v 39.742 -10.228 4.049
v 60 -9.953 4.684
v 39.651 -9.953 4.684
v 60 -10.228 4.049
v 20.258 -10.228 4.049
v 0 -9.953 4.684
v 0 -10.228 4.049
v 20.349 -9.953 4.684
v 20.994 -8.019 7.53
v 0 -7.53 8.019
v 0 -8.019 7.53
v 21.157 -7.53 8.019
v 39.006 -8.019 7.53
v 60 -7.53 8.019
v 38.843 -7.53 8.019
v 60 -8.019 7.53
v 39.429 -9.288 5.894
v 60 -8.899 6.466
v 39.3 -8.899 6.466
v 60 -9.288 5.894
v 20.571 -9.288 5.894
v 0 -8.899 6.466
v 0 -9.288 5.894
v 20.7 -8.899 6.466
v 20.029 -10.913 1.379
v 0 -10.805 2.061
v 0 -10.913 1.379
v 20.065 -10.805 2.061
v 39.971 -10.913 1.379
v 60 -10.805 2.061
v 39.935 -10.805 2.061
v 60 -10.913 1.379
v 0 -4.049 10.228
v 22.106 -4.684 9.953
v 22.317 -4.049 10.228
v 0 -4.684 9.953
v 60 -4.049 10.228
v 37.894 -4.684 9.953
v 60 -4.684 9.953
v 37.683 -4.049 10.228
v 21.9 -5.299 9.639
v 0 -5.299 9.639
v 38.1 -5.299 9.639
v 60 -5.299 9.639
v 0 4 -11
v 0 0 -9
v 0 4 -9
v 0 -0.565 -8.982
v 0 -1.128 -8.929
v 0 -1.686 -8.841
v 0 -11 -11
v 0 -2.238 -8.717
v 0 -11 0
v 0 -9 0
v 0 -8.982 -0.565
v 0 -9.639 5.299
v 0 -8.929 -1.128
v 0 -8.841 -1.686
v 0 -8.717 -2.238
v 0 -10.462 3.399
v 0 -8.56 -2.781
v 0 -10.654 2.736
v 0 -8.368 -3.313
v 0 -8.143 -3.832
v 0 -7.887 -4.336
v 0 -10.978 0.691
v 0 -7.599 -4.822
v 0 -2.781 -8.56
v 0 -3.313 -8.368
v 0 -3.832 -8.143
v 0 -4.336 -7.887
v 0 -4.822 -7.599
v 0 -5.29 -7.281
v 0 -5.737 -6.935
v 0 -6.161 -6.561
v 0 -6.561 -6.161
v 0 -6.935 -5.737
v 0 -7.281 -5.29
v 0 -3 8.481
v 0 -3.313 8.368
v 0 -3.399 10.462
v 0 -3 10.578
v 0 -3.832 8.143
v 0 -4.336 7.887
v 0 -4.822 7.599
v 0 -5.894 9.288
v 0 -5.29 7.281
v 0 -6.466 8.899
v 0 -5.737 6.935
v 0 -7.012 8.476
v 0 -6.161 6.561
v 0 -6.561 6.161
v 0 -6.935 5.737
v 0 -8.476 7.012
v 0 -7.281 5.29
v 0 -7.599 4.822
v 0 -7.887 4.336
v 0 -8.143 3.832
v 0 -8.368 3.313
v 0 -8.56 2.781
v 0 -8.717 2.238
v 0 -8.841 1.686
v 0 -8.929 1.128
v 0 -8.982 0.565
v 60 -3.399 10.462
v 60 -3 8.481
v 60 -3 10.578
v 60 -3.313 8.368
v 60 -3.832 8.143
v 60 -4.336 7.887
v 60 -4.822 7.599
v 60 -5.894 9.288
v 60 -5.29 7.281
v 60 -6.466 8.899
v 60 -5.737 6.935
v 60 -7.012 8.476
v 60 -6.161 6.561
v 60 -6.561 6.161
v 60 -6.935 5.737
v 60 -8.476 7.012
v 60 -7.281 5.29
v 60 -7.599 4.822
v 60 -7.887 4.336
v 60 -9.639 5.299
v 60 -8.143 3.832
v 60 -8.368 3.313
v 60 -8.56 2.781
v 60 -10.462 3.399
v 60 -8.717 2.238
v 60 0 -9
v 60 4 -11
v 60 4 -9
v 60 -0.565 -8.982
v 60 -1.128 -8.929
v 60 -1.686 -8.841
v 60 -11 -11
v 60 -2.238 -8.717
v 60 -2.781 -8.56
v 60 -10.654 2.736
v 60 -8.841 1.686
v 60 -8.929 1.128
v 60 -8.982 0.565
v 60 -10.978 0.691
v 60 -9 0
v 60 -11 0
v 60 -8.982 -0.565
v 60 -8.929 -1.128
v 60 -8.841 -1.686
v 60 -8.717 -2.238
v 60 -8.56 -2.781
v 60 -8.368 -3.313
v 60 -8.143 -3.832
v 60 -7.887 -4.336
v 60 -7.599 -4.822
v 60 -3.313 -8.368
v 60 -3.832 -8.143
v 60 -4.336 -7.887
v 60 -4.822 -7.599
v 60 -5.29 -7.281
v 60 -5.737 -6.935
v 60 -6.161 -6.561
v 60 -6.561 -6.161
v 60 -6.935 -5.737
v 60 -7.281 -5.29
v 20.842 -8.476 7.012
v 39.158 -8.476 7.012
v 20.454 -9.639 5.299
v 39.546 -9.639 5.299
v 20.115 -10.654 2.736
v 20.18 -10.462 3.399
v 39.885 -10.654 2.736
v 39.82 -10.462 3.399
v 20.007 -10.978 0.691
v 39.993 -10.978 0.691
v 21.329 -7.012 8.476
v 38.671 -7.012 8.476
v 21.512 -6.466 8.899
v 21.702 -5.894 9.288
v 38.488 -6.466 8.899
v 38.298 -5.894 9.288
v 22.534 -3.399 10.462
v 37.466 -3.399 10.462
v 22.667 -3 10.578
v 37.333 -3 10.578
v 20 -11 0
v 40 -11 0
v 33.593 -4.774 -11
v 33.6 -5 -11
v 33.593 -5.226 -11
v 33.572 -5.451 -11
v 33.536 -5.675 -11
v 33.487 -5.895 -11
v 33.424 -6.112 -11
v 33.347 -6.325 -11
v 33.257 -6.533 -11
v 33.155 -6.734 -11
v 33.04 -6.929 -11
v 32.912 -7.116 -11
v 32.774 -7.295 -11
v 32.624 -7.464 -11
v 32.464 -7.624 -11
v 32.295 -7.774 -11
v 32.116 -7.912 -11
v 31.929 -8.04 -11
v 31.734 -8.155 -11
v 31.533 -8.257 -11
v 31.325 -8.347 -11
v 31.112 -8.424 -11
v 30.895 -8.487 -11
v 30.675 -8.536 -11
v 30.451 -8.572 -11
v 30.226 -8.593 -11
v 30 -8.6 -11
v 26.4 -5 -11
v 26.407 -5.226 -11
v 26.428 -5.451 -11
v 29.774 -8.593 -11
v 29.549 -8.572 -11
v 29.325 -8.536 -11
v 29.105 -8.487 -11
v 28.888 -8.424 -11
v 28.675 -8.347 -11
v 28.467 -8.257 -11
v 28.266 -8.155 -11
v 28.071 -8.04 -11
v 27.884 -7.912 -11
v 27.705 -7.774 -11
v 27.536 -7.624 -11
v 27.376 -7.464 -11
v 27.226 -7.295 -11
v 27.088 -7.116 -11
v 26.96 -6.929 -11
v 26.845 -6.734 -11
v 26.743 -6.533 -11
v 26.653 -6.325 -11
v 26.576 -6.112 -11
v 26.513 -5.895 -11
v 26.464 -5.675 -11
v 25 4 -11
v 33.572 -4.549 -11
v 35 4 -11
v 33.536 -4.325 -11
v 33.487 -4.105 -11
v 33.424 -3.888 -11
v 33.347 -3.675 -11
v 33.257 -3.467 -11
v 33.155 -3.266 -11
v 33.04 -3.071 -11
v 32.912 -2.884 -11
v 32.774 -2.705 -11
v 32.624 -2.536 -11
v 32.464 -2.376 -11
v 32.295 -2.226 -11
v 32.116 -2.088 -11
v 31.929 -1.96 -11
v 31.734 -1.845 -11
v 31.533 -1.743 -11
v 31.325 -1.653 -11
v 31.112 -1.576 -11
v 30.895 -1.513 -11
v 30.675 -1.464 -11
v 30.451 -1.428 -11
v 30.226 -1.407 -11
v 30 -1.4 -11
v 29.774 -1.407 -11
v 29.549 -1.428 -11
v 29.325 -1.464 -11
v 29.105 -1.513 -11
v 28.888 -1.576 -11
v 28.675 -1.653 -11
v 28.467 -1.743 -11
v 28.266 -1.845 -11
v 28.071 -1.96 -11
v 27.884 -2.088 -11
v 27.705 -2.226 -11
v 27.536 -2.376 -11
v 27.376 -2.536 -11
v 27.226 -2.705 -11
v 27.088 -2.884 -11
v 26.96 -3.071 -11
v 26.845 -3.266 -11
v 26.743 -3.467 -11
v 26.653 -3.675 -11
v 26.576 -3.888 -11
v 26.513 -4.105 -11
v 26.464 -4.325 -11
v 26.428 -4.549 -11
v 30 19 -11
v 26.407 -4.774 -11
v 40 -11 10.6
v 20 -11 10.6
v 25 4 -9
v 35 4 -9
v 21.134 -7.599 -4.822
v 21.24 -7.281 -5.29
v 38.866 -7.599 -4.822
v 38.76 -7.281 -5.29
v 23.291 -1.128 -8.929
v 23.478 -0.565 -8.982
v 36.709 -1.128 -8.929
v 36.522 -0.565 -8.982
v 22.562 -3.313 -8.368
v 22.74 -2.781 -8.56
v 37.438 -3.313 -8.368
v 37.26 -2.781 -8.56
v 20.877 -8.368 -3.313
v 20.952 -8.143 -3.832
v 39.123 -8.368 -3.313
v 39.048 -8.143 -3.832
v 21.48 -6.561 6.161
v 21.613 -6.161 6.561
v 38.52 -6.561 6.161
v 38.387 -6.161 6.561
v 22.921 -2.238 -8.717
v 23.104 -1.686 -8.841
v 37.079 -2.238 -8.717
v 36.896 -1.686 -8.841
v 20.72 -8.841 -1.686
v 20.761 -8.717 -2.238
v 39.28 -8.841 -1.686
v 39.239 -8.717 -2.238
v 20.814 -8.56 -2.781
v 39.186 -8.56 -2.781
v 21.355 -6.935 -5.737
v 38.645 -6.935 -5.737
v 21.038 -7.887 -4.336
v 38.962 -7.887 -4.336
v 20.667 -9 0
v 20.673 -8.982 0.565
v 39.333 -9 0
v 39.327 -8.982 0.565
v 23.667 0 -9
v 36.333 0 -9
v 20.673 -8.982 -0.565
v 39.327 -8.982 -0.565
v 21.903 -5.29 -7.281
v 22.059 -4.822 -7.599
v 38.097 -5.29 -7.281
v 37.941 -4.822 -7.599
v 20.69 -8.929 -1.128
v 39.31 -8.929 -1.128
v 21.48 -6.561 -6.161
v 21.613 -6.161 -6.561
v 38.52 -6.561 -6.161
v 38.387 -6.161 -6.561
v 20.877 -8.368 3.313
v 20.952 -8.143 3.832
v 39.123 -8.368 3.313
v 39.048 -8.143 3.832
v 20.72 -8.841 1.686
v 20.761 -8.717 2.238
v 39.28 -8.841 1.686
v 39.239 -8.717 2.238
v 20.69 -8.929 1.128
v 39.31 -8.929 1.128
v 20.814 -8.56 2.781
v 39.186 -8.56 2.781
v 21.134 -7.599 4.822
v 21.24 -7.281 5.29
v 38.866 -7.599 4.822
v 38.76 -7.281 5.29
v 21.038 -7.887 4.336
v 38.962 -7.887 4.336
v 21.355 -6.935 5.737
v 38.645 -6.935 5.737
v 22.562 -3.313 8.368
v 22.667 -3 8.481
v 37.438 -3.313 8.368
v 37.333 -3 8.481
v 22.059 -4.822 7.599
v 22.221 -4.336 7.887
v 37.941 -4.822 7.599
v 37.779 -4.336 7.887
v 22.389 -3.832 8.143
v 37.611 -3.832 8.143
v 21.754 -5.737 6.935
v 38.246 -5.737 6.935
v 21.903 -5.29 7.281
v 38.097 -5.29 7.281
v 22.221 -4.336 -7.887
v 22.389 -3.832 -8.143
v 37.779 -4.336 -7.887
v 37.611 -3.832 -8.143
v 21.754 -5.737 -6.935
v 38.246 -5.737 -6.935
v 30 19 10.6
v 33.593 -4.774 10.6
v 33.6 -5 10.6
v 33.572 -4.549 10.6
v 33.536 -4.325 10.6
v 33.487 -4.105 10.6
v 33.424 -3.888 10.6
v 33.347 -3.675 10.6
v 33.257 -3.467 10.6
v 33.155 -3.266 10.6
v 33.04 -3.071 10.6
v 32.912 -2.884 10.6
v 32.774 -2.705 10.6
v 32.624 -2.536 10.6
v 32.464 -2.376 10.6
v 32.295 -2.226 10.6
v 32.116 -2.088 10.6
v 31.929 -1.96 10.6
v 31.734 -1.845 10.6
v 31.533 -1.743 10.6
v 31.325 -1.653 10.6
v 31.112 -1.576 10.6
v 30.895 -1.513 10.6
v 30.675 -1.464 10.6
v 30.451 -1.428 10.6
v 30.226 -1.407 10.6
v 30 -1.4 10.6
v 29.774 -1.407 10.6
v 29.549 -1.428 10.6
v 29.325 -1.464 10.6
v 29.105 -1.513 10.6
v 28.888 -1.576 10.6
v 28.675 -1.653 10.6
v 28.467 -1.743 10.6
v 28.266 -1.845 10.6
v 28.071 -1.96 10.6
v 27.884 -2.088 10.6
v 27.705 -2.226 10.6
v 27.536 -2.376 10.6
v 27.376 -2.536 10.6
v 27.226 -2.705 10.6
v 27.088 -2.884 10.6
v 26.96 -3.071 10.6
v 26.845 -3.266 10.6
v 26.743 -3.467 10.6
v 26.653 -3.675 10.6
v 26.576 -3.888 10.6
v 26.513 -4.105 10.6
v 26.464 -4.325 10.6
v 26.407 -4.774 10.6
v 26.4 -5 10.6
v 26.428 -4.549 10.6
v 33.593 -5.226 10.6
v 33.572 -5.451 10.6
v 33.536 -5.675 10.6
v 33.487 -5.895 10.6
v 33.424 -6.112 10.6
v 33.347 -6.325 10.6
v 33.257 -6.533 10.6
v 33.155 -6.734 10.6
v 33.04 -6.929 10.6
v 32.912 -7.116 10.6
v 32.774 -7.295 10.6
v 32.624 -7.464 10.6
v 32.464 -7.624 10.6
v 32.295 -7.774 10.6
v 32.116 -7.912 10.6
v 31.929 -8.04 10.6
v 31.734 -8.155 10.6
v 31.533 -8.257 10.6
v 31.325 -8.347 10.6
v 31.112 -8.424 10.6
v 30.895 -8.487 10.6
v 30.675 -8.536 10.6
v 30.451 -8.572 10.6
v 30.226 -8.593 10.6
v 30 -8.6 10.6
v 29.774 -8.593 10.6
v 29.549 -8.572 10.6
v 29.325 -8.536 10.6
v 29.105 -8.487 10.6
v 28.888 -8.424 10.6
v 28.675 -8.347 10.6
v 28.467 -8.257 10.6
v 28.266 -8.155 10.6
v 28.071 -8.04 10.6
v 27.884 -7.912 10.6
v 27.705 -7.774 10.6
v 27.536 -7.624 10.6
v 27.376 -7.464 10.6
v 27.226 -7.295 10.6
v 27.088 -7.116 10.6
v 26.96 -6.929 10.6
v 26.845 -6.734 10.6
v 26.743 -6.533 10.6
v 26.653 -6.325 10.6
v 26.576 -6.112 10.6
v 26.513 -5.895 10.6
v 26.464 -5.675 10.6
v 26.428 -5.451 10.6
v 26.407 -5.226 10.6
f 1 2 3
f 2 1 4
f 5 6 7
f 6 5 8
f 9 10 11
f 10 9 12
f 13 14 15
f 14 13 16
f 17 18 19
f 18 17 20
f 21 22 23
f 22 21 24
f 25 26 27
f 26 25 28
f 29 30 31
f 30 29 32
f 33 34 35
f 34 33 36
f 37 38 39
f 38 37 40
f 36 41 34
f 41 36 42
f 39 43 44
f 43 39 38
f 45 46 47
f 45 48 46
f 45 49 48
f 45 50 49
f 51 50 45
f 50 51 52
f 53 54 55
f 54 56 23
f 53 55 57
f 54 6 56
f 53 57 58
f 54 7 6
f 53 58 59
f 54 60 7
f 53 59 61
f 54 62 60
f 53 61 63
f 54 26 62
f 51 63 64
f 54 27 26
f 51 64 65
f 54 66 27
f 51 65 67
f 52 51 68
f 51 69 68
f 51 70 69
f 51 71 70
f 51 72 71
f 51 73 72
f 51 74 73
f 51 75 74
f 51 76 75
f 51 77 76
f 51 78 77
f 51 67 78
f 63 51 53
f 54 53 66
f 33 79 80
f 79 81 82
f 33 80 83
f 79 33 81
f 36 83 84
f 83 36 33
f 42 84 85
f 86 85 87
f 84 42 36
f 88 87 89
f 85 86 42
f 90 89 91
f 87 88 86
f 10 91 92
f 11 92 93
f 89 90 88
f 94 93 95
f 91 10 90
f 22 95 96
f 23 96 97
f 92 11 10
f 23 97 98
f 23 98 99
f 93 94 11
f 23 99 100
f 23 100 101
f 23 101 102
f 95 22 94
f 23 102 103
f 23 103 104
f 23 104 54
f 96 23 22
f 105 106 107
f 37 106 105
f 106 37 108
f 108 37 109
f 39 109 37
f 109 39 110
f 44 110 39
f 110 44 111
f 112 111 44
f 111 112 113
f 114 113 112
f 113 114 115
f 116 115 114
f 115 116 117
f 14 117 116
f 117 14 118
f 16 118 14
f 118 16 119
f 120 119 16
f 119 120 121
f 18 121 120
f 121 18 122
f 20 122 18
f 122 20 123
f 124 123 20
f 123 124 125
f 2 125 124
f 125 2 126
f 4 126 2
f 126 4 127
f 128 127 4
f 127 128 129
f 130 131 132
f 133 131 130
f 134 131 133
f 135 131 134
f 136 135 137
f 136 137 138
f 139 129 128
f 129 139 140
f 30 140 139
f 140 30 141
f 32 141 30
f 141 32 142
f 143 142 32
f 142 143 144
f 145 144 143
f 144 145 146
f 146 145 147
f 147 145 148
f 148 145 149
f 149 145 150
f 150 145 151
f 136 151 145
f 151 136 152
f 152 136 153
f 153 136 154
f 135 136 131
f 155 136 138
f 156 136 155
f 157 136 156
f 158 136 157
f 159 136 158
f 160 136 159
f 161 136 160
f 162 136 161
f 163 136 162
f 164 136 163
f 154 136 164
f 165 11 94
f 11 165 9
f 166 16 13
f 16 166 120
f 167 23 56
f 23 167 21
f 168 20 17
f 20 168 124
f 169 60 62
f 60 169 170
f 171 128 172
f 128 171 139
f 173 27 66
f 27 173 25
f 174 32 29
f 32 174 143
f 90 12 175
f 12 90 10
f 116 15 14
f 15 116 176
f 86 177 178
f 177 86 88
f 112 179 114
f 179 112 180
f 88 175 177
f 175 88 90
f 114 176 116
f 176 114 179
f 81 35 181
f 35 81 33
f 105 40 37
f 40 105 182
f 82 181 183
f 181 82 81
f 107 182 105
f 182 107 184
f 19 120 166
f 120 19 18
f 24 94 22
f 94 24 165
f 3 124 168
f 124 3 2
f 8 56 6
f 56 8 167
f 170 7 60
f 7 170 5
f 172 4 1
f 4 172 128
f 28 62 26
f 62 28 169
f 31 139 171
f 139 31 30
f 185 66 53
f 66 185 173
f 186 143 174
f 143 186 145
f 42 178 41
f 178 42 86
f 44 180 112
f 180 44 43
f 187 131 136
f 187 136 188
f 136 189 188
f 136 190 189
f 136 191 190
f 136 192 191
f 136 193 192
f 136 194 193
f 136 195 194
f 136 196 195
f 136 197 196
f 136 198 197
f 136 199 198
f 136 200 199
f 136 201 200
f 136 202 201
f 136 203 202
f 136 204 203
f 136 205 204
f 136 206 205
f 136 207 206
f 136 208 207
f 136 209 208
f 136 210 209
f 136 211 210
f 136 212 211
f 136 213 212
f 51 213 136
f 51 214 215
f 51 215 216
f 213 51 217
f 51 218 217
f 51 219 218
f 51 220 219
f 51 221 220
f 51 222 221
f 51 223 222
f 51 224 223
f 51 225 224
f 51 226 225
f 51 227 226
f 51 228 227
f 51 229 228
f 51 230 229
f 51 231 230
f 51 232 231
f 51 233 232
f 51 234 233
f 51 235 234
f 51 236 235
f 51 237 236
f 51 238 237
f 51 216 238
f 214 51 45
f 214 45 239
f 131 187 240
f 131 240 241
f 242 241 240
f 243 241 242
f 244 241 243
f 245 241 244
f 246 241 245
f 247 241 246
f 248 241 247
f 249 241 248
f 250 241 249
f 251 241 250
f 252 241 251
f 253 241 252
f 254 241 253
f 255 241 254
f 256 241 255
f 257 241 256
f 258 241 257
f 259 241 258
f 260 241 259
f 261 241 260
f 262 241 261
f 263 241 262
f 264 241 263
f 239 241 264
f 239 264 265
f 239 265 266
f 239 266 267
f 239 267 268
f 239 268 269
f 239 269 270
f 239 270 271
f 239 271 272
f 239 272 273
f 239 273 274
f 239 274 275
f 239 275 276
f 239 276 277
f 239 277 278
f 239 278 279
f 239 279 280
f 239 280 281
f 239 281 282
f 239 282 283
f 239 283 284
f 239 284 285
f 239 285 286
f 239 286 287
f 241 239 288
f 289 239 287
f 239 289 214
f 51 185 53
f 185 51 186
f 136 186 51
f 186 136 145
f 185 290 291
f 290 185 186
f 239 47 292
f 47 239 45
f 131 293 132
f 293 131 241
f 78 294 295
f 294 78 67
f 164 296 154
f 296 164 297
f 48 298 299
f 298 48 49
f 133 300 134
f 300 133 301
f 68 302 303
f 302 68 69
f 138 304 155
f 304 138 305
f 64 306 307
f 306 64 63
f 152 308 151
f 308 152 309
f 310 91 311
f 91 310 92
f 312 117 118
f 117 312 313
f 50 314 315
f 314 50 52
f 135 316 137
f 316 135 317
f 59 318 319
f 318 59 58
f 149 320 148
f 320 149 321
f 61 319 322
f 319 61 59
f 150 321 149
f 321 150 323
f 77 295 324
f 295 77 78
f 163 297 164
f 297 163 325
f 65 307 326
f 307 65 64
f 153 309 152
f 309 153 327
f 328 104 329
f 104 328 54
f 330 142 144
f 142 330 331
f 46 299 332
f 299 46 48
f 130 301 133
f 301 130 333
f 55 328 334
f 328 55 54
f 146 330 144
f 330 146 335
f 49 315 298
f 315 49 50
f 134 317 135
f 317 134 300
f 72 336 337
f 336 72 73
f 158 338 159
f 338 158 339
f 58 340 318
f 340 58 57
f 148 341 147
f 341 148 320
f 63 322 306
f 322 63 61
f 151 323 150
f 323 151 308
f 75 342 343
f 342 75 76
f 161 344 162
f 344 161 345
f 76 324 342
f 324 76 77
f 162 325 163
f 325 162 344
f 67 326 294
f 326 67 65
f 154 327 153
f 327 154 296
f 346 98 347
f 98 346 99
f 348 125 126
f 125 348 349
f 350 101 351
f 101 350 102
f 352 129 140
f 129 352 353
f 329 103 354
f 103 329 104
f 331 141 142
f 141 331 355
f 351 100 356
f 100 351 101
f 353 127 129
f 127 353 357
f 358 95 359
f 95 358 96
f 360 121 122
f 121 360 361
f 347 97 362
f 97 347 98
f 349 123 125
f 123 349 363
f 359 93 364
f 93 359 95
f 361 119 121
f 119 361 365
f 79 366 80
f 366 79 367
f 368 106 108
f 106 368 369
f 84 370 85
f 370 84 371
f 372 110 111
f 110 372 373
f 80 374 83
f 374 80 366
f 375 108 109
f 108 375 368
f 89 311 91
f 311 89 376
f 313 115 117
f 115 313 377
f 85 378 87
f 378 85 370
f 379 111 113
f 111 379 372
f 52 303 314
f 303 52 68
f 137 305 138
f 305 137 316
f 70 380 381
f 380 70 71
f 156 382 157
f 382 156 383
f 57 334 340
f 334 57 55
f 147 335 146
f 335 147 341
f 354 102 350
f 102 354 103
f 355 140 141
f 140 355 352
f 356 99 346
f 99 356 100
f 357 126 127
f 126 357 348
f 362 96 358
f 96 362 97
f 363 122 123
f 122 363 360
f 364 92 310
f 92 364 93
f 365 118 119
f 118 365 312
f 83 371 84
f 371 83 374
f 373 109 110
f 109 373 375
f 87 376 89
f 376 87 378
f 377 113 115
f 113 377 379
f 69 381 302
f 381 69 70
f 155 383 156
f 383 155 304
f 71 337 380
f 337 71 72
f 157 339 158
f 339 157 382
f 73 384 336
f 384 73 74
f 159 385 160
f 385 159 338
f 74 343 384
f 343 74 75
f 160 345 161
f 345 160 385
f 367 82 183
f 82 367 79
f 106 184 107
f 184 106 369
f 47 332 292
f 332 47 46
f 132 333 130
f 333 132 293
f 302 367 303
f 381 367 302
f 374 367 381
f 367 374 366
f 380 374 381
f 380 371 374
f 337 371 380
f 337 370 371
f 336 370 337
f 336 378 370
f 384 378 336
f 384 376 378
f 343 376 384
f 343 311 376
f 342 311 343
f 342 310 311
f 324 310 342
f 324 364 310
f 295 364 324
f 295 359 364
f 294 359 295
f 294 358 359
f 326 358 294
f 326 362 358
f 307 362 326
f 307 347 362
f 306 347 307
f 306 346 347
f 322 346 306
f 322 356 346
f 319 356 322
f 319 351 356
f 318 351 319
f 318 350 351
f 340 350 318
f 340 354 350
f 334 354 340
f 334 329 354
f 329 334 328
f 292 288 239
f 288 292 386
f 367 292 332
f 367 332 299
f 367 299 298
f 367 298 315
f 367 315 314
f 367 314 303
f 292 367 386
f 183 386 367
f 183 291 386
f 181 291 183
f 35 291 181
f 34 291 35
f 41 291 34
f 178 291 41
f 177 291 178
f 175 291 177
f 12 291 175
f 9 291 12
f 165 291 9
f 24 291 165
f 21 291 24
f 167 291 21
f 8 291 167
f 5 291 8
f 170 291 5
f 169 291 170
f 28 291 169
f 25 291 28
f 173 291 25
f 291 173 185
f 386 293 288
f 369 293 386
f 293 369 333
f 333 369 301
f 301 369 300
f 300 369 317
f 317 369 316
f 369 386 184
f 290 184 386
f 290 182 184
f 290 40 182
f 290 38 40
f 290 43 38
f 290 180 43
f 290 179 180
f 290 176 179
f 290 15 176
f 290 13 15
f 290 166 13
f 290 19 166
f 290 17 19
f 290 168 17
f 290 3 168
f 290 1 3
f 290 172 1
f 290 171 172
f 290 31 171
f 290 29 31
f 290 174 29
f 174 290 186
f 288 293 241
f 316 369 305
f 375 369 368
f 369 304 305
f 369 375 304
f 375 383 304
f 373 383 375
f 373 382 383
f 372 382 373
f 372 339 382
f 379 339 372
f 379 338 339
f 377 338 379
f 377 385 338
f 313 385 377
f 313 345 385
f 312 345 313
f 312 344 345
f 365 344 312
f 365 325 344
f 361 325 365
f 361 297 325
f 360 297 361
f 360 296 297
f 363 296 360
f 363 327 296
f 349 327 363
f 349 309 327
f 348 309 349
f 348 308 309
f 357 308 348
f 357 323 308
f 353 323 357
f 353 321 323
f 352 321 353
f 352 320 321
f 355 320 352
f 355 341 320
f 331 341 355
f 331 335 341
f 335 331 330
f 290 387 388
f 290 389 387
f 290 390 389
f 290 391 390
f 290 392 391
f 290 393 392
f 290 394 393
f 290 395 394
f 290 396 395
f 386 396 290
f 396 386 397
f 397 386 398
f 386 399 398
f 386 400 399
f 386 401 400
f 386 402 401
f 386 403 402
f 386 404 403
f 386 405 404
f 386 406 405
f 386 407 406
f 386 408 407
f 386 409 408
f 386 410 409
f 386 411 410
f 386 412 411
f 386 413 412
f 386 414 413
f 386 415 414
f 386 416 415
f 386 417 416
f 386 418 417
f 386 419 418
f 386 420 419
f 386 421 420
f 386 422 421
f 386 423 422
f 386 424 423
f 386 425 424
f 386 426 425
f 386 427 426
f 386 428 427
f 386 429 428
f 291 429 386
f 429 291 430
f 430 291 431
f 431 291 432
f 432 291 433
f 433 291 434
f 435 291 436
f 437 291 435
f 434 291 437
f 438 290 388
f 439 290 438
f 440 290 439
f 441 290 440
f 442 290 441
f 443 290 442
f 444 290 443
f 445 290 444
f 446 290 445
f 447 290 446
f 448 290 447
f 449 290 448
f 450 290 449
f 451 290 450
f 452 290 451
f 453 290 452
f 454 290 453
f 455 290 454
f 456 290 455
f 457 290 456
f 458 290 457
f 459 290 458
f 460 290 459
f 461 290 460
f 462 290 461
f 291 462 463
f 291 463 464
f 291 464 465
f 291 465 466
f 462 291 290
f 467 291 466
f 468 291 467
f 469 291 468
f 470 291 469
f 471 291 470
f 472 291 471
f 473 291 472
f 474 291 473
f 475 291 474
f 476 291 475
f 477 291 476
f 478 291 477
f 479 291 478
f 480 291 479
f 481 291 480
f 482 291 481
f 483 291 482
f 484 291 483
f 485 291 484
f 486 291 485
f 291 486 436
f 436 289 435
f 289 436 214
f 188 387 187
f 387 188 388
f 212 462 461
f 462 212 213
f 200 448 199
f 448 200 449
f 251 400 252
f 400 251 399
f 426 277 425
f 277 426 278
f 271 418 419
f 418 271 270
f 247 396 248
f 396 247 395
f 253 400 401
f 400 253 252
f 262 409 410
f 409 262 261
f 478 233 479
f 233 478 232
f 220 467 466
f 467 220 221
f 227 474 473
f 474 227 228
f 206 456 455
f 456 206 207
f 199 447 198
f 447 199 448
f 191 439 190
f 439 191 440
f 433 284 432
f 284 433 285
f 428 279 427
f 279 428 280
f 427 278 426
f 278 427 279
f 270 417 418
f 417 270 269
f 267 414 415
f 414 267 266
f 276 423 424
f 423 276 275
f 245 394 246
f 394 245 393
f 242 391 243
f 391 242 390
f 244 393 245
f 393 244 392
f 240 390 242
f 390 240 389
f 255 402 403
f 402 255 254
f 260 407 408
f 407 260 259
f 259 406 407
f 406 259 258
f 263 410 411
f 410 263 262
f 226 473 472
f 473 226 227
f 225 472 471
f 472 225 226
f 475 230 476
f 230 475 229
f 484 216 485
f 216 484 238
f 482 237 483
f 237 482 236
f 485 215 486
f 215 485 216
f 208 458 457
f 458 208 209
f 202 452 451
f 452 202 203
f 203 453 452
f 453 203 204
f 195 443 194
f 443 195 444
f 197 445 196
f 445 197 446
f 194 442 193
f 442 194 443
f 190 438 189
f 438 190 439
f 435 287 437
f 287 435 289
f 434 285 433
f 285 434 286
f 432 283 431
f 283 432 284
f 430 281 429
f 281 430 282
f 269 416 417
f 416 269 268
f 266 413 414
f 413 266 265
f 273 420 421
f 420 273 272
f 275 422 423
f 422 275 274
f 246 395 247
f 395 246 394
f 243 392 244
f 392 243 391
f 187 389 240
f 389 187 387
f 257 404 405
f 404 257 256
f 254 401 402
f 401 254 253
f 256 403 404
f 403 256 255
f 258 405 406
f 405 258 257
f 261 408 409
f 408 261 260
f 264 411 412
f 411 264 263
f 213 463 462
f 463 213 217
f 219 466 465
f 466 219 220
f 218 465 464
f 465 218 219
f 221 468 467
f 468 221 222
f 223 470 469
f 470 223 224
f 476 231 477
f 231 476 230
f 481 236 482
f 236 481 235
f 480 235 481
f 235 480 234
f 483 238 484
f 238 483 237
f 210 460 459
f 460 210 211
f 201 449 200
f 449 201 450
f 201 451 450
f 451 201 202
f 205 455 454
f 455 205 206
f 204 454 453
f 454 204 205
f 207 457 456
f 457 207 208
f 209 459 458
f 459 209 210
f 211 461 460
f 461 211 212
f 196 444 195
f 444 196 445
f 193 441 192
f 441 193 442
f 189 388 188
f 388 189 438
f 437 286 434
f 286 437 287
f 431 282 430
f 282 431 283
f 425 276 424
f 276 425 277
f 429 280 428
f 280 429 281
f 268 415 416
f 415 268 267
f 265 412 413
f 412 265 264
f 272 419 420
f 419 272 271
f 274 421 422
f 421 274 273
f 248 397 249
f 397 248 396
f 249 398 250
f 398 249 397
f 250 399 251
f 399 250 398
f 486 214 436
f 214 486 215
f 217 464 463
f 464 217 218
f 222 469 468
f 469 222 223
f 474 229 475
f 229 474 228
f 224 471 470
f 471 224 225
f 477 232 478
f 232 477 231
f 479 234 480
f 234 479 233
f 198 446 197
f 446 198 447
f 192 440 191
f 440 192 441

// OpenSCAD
magnet_radius = 5.5;  // Use 10x2mm magnets. 5.5 radius is good for hotglueing.  Use ~5 when just pushing magnets in.

$fn=100;
length=60;

rotate(a=[0,90,0])  // rotate for printing (magnet side down).
difference() {
  union() {
    difference() {
      union() {
        // Basic shape is just a cylinder and cube
        cylinder(r=11, h=length);
        translate([0,-11,0]) cube([11,15,length]);
      }
      // Carve inner trail
      translate([0,0,-1])cylinder(r=9, h=length+2);
      // Remove upper parts of the cylinder tube
      translate([-11,-3,-1]) cube([12,25,length+2]);
      translate([0,4,-1]) cube([11,25,length+2]);
      translate([0,0,-1]) cube([9,25,length+2]);
    }
  
    // Add the divider wedge to the center of the track
    translate([-10.6,-11,20]) {
      // Hull is needed to make the poly solid
      hull() polyhedron( points = [ [0,0,0], [21.6,0,0], [0,30,10], [21.6,30,10], [0,0,20], [21.6,0,20] ], faces = [ [0,1,3,2], [2,3,5,4], [0,1,5,4], [0,2,4], [1,3,5] ], convexity = 10); 
    }
  }
  // Center hole
  translate([-12,-5,30]) rotate([0,90,0]) cylinder(h=25, r=3.6);
}
  
